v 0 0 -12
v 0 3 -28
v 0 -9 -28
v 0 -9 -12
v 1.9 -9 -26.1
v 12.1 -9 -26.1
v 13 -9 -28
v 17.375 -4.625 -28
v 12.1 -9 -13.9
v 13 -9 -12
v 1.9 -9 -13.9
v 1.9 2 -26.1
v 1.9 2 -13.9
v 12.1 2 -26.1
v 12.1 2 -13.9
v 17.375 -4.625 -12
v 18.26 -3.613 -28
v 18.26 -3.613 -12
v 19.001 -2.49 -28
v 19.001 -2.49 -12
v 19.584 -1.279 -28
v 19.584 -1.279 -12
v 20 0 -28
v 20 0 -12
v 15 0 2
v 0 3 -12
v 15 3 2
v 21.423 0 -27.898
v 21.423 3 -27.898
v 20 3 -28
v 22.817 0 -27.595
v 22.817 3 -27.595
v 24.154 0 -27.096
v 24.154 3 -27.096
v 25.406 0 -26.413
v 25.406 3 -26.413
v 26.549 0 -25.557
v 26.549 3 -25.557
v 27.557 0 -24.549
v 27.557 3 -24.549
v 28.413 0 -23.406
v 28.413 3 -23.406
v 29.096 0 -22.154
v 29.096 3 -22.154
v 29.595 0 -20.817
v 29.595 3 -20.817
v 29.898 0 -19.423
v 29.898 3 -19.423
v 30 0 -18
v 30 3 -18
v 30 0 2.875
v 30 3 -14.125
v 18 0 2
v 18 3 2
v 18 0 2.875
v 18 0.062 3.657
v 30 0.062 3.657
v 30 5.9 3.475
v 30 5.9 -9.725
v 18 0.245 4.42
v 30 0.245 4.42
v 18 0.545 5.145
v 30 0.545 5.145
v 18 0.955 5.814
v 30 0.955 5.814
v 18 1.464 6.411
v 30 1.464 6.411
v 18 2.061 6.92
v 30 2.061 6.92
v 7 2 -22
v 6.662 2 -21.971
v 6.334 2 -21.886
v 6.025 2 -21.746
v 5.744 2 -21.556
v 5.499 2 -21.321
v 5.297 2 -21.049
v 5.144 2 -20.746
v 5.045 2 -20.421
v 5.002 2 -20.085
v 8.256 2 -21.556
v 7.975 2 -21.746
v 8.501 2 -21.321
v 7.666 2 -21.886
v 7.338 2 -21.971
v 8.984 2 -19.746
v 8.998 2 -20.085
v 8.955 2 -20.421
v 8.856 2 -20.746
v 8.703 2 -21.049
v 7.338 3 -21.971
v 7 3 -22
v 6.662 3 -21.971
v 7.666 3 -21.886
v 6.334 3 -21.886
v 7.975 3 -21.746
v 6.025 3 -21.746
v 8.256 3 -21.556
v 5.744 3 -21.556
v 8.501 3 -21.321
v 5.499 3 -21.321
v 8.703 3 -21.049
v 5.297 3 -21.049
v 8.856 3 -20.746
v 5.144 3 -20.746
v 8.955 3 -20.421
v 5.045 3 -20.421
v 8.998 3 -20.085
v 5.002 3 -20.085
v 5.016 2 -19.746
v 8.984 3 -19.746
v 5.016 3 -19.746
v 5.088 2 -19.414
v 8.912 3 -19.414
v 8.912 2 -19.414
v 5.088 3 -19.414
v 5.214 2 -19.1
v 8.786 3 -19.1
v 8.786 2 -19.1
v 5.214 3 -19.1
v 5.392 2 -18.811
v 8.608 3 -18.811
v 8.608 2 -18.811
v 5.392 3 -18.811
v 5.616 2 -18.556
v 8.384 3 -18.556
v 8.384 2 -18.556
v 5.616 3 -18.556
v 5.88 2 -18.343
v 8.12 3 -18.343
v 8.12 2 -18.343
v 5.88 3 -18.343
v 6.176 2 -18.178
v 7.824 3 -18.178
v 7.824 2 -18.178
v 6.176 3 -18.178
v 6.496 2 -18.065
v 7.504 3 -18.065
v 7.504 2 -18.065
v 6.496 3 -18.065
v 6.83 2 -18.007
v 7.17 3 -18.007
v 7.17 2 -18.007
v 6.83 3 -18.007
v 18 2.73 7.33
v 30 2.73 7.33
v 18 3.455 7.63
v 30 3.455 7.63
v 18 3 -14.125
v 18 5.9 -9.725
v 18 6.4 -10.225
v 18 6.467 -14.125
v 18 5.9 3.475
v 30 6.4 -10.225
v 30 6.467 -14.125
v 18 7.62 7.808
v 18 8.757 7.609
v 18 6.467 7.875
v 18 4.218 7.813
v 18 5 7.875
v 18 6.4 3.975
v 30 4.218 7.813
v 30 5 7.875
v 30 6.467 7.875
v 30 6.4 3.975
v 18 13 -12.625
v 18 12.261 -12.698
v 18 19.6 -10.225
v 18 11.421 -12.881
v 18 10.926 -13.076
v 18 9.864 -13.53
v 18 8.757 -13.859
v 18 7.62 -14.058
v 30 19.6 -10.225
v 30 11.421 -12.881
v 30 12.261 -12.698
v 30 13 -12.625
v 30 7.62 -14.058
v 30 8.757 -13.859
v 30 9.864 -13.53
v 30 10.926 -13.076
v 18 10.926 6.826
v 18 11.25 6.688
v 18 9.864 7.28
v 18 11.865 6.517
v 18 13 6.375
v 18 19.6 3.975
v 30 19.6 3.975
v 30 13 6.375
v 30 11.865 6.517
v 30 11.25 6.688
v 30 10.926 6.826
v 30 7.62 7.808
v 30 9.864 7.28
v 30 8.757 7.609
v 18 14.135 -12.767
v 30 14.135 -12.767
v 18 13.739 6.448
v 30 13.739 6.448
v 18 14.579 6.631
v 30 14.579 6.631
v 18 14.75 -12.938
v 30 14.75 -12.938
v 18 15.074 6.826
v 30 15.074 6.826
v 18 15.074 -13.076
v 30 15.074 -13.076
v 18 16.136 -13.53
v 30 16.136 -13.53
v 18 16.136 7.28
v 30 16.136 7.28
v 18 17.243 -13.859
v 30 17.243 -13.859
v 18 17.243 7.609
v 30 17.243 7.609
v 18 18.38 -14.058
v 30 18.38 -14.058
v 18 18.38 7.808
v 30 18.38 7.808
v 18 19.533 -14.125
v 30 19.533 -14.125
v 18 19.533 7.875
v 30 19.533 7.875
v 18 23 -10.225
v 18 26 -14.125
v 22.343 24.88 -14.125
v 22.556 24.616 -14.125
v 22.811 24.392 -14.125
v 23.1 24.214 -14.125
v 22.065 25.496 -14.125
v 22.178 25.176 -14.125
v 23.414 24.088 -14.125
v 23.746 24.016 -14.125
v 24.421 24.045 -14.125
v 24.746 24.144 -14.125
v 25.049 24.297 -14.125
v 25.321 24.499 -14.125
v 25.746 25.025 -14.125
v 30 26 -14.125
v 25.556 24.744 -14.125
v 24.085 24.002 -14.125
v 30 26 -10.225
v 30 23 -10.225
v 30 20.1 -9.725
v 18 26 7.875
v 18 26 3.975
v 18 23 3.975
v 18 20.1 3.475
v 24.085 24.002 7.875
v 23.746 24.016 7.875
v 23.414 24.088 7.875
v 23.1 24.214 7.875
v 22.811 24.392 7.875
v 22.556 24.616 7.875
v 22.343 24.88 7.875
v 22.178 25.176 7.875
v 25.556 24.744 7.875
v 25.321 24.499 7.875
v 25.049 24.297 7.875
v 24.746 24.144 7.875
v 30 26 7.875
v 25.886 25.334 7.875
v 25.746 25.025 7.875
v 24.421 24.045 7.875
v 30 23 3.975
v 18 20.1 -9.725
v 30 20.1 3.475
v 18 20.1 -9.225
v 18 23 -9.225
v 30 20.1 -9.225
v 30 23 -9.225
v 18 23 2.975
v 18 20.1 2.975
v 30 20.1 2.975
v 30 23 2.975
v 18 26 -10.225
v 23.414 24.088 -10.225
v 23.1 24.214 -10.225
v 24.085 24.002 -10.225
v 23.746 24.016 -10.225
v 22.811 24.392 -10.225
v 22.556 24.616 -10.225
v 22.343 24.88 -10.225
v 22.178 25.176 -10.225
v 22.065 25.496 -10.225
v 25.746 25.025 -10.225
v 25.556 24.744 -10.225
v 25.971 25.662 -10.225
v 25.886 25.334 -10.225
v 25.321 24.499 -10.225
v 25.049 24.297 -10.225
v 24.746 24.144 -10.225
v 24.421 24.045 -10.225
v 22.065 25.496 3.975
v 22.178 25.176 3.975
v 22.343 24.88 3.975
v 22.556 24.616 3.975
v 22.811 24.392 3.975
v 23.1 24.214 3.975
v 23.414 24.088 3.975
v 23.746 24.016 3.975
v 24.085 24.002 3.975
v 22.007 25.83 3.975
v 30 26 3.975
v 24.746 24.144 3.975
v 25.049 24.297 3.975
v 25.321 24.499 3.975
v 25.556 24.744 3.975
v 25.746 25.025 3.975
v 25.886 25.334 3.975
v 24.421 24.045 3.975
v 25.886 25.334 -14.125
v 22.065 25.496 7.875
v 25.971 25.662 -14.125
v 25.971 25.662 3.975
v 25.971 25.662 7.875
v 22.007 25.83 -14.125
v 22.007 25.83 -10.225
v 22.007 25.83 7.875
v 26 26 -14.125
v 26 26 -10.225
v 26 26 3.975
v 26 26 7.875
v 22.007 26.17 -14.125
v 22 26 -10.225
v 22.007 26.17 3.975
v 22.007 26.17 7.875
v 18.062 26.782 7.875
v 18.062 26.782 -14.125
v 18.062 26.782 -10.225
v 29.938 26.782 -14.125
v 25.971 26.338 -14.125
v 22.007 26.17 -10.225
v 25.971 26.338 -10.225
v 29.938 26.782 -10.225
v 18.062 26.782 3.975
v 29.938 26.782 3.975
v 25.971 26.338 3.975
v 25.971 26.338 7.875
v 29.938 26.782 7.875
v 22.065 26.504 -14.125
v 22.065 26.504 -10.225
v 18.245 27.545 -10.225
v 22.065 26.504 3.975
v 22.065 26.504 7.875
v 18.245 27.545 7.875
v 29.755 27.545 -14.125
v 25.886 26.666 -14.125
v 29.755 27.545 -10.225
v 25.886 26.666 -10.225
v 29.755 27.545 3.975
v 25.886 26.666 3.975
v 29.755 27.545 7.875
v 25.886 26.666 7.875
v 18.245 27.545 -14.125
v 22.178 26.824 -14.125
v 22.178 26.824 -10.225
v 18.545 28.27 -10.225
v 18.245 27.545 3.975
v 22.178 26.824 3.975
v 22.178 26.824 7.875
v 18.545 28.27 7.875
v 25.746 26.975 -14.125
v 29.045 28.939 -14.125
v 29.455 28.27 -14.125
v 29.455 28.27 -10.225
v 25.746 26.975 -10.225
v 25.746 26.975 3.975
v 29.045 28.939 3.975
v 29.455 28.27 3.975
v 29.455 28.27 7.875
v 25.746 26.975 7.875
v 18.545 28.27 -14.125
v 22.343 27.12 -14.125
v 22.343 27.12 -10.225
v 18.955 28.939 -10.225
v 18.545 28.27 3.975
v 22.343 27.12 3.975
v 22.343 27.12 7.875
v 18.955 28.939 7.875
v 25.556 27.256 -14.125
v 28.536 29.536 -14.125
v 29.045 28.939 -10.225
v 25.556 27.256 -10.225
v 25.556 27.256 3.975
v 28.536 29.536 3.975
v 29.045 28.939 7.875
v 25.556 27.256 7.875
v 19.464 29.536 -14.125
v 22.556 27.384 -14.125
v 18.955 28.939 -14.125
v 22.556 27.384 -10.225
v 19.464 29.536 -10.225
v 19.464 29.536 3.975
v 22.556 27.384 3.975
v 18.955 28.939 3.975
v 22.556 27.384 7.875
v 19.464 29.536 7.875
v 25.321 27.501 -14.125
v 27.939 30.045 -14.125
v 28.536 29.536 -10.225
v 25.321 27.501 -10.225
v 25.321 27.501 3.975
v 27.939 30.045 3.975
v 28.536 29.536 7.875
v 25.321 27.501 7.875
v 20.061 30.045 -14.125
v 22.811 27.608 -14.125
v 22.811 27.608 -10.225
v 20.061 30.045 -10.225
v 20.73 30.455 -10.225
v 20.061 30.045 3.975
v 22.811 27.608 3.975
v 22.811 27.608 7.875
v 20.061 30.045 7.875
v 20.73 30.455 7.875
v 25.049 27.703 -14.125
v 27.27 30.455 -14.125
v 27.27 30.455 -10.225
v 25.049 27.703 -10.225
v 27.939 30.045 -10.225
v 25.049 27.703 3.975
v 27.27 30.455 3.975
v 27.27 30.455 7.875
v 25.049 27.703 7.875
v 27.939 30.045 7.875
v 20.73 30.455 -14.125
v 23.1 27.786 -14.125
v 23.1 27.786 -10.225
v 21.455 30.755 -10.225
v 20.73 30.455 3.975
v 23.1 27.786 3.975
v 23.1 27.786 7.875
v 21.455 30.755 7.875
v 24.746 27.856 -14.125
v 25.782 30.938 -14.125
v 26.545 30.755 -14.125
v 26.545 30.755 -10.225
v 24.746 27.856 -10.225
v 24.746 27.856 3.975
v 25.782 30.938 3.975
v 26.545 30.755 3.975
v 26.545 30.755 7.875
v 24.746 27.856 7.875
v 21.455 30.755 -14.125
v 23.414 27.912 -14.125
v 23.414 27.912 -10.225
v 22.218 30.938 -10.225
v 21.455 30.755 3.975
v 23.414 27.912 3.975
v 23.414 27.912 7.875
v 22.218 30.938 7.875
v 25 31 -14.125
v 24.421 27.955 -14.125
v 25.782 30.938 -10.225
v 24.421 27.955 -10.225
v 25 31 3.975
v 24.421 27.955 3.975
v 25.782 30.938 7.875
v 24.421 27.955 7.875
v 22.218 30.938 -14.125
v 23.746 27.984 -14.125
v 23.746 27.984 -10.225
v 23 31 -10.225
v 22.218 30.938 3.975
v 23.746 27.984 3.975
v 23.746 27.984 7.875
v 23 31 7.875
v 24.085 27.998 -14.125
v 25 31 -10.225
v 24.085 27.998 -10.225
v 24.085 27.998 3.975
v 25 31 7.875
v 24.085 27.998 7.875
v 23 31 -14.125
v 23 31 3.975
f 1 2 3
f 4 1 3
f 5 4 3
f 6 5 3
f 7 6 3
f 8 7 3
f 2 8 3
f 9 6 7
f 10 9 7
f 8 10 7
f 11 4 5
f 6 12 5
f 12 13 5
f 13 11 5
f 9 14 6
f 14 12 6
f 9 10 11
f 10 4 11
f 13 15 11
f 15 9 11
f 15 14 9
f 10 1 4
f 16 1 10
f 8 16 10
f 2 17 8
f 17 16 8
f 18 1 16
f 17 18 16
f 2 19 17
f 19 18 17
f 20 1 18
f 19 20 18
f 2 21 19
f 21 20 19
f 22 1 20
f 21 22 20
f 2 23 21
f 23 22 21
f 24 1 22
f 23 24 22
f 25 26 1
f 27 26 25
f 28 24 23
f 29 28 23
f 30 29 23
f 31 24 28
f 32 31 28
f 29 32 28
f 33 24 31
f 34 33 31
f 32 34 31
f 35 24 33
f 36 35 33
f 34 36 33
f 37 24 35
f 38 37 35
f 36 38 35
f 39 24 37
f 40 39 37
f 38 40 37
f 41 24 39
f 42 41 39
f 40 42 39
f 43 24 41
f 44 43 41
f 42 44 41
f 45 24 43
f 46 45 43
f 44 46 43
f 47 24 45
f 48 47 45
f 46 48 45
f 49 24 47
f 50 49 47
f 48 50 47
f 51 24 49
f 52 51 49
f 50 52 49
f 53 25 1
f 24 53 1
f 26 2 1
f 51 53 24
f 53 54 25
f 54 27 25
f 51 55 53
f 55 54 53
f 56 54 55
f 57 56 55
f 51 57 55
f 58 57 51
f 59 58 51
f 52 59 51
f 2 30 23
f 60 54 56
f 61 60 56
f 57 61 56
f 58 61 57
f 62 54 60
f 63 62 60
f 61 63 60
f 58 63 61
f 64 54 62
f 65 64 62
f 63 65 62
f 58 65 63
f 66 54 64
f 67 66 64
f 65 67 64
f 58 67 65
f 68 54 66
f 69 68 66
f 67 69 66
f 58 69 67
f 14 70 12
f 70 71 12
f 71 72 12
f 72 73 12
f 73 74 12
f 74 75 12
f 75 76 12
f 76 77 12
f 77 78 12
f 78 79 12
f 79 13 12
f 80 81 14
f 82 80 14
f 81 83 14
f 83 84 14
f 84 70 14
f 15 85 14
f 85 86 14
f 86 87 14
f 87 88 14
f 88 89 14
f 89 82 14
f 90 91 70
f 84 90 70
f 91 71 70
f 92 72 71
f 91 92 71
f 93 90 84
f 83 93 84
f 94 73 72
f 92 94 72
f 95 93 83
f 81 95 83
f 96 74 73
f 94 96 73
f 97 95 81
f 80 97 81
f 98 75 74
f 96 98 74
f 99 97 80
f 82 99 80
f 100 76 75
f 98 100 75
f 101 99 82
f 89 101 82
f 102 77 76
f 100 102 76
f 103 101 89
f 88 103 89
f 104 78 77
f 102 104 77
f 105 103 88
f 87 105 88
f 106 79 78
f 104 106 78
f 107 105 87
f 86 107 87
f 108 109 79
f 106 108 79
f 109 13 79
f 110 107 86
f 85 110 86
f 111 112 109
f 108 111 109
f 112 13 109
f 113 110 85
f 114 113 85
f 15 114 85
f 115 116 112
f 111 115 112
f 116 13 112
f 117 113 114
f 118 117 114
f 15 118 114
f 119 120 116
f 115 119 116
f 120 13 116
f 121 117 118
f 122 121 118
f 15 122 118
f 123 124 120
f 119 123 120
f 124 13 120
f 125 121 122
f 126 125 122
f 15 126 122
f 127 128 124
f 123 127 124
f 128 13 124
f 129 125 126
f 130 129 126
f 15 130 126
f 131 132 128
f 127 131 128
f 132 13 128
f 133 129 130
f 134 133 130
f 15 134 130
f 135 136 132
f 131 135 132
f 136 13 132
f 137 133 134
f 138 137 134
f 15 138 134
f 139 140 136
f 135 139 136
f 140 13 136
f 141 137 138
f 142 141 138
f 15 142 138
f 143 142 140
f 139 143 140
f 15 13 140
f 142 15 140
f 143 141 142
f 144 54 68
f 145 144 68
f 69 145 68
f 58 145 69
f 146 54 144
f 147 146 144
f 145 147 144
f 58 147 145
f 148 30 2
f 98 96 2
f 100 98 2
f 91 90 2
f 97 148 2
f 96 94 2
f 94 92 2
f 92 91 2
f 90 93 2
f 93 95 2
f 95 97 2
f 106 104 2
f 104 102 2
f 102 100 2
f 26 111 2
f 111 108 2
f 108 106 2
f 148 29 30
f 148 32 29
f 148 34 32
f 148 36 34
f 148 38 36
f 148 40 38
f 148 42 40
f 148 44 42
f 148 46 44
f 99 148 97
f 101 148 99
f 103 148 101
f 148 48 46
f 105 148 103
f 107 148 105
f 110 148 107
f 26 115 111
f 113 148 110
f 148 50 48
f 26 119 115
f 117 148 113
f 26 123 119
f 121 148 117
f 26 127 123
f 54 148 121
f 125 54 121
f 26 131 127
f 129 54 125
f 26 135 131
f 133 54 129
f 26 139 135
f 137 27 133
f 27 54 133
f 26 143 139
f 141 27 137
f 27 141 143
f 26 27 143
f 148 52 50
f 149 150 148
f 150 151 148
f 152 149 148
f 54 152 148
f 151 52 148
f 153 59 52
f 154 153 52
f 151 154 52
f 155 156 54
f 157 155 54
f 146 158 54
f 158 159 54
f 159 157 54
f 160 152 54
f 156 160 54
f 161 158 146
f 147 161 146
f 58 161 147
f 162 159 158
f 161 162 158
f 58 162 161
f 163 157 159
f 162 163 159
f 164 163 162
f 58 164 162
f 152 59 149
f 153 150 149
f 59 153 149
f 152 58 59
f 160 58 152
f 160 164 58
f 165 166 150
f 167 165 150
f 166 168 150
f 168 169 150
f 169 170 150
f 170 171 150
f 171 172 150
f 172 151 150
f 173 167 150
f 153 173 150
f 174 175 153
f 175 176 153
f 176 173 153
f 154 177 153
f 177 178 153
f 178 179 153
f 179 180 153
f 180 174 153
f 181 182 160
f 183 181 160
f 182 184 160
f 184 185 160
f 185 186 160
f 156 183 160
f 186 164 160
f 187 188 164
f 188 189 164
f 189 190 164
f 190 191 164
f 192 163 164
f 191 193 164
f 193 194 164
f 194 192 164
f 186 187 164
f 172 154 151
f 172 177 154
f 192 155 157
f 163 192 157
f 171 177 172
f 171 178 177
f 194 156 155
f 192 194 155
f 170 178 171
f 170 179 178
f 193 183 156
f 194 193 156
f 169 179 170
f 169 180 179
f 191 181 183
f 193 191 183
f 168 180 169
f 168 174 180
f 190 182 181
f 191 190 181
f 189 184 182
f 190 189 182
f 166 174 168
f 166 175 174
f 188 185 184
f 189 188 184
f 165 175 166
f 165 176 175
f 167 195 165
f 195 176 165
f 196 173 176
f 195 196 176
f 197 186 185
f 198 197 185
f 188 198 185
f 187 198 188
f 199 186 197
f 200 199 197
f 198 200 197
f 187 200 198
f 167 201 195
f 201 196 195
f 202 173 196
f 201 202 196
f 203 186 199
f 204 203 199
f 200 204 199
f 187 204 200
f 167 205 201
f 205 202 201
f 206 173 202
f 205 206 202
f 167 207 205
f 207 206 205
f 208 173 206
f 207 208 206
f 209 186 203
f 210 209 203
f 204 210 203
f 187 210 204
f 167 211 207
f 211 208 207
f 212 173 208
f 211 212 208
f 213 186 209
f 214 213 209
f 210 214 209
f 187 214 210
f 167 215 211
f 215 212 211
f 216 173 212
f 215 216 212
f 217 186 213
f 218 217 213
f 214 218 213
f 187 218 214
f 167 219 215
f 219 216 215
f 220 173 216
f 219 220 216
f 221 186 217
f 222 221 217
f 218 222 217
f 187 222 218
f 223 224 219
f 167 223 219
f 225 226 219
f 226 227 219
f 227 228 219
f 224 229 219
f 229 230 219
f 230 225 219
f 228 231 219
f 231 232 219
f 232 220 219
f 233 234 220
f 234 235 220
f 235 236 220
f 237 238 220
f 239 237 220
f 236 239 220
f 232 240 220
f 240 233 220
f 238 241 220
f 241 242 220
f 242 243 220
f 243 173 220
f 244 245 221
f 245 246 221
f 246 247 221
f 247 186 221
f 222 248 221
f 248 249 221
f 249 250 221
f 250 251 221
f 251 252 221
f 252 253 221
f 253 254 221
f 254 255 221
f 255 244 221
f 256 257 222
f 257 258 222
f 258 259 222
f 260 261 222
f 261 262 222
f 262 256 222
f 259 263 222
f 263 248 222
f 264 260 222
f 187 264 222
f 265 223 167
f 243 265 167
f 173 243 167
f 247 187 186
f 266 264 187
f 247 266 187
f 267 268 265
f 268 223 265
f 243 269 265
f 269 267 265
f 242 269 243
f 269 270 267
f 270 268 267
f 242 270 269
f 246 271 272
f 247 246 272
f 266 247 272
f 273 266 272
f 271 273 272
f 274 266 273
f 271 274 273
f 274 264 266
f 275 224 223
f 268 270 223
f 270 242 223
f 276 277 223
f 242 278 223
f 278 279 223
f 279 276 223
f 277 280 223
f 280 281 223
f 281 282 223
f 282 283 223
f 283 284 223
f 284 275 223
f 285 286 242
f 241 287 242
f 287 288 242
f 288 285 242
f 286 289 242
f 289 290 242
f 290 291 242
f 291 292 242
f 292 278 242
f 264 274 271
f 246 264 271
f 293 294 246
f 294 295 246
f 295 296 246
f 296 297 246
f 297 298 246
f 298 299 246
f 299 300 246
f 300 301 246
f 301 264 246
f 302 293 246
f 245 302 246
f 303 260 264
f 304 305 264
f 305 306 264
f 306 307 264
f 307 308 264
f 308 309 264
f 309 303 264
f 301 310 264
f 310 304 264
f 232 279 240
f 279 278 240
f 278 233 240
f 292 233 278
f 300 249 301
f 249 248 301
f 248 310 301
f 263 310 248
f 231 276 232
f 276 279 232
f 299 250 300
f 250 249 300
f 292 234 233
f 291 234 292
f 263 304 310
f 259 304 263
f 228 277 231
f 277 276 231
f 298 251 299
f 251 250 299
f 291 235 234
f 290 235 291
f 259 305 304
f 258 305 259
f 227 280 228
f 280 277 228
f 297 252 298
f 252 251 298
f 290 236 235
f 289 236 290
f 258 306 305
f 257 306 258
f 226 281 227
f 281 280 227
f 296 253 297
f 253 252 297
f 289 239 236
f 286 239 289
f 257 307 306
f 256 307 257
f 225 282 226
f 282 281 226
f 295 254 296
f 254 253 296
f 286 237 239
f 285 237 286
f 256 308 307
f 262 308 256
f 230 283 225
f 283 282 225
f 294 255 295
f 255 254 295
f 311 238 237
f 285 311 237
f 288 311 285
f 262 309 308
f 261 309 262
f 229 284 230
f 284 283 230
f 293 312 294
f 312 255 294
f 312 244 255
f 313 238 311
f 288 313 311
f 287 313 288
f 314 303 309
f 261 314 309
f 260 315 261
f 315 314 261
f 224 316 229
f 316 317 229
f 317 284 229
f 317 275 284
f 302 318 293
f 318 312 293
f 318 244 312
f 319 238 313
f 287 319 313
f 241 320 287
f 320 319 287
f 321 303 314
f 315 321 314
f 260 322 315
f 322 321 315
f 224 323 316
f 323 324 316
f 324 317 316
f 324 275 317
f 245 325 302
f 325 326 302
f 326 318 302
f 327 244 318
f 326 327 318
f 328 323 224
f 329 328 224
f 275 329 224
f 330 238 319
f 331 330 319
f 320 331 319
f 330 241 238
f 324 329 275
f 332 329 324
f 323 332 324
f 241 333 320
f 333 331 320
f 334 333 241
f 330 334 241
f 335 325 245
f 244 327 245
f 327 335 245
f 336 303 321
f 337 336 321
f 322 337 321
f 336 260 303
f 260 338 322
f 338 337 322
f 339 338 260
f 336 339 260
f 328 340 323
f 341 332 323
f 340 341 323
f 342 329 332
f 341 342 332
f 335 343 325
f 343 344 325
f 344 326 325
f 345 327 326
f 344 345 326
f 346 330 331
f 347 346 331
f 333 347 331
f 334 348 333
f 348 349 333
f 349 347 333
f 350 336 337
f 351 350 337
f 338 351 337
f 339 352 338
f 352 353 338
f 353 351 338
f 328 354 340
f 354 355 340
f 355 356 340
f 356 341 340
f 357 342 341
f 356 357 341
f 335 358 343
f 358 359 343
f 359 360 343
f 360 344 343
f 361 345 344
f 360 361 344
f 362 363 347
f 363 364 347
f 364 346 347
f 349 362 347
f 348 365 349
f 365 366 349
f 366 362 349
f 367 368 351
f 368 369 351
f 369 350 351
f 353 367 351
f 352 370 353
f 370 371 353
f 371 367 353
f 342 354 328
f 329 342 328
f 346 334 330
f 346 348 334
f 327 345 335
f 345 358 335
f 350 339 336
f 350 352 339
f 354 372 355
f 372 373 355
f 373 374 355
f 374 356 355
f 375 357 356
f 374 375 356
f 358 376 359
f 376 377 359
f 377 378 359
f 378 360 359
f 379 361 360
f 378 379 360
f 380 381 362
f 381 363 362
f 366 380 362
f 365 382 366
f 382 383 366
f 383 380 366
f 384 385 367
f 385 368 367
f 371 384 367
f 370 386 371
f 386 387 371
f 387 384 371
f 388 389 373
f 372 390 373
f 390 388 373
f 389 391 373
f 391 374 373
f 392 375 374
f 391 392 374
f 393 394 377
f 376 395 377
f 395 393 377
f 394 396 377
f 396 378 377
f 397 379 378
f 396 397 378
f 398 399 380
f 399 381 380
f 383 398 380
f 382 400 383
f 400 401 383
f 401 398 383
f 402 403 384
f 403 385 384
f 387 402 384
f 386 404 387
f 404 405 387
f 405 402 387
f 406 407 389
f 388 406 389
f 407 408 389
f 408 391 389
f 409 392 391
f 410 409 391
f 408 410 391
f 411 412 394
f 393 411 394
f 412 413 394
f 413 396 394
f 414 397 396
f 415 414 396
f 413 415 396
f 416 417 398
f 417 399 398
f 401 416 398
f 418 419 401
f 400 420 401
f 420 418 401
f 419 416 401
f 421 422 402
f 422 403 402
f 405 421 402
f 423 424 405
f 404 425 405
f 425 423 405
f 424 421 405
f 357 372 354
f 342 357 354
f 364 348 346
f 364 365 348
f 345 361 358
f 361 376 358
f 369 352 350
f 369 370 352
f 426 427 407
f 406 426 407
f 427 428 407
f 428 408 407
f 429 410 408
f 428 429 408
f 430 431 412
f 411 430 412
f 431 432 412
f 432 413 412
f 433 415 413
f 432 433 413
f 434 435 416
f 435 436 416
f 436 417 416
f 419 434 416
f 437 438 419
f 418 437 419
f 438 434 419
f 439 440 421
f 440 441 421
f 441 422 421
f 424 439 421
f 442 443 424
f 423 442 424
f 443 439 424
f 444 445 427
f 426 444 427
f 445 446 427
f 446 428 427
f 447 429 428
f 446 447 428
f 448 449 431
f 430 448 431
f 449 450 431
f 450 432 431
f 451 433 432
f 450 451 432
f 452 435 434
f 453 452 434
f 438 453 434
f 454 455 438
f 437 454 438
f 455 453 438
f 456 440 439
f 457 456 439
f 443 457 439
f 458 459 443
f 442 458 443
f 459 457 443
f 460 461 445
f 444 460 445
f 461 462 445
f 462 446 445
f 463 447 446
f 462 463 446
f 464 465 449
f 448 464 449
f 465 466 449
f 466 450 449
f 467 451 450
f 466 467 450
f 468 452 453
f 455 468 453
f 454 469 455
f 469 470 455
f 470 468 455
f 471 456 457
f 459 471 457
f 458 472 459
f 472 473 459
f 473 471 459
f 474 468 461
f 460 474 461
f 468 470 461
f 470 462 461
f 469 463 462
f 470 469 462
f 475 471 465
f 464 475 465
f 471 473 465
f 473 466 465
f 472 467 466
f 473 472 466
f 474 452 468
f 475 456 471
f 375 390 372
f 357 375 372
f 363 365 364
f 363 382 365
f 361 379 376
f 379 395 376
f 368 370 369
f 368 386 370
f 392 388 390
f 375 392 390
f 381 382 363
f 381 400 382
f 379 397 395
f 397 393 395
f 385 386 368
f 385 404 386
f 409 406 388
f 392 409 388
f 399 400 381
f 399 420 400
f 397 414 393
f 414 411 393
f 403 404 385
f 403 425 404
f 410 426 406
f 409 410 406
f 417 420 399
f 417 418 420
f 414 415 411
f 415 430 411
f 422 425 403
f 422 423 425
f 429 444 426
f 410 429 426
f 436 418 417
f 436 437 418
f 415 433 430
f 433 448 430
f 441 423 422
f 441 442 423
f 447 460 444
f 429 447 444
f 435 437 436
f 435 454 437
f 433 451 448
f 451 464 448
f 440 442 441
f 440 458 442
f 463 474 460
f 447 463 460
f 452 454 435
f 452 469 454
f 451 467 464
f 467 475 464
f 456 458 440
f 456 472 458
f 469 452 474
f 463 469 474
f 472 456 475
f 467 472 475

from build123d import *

# Parameters (mm, degrees)
ESQUISSE1_W                   = 30
ESQUISSE1_H                   = 40
BOSS_EXTRU_1_DEPTH            = 3
ESQUISSE8_W                   = 17
ESQUISSE8_H                   = 3.5
BOSS_EXTRU_2_DEPTH            = 20
ESQUISSE11_W                  = 3.5
ESQUISSE11_H                  = 20
ENL_V_MAT_EXTRU_9_DEPTH       = 5
ESQUISSE19_W                  = 12
ESQUISSE19_H                  = 20
BOSS_EXTRU_6_DEPTH            = 16.5
ESQUISSE20_W                  = 14.2
ESQUISSE20_H                  = 14.2
ENL_V_MAT_EXTRU_11_DEPTH      = 50.527769988
ESQUISSE29_W                  = 12
ESQUISSE29_H                  = 3
BOSS_EXTRU_9_DEPTH            = 17
ESQUISSE30_W                  = 12
ESQUISSE30_H                  = 23
BOSS_EXTRU_10_DEPTH           = 1
ESQUISSE31_W                  = 12
ESQUISSE31_H                  = 20
BOSS_EXTRU_11_DEPTH           = 1
ESQUISSE32_W                  = 12.2
ESQUISSE32_H                  = 2.9
ENL_V_MAT_EXTRU_12_DEPTH      = 50.527769988
ESQUISSE33_W                  = 12
ESQUISSE33_H                  = 3.9
BOSS_EXTRU_12_DEPTH           = 8
CONG_6_R                      = 5
ENL_V_MAT_EXTRU_14_DEPTH      = 53.417083332
ENL_V_MAT_EXTRU_14_DEPTH_BACK = 53.417083332
ESQUISSE36_R                  = 2
CHANFREIN1_SIZE               = 0.5
CONG_7_R                      = 5
ENL_V_MAT_EXTRU_15_DEPTH      = 54.712196008
CONG_8_R                      = 10
CONG_9_R                      = 10
ESQUISSE39_W                  = 30
ESQUISSE39_H                  = 3
BOSS_EXTRU_13_DEPTH           = 2
ESQUISSE40_W                  = 18
ESQUISSE40_H                  = 3
BOSS_EXTRU_14_DEPTH           = 2
ESQUISSE38_R                  = 2
ENL_V_MAT_EXTRU_16_DEPTH      = 61.207973065
ESQUISSE41_W                  = 14
ESQUISSE41_H                  = 16
ESQUISSE41_W_2                = 10
ESQUISSE41_H_2                = 12
BOSS_EXTRU_15_DEPTH           = 9
ESQUISSE42_W                  = 10
ESQUISSE42_H                  = 12
ENL_V_MAT_EXTRU_17_DEPTH      = 2
ESQUISSE43_W                  = 30
ESQUISSE43_H                  = 14
ENL_V_MAT_EXTRU_19_DEPTH      = 3
CONG_10_R                     = 10
ESQUISSE44_W                  = 6
ESQUISSE44_H                  = 16
BOSS_EXTRU_16_DEPTH           = 9
CHANFREIN2_SIZE               = 7
CONG_11_R                     = 10
ESQUISSE46_W                  = 10.2
ESQUISSE46_H                  = 12.2
ENL_V_MAT_EXTRU_20_DEPTH      = 11


with BuildPart() as part:
    # Esquisse1 → Boss.-Extru.1 (new body)
    with BuildSketch(Plane(origin=(0, 0, 0), x_dir=(1, 0, 0), z_dir=(0, 1, 0))):
        with Locations((15, 20)):
            Rectangle(ESQUISSE1_W, ESQUISSE1_H)
    extrude(amount=BOSS_EXTRU_1_DEPTH)

    # Esquisse8 → Boss.-Extru.2 (add)
    with BuildSketch(Plane(origin=(0, 3, 0), x_dir=(1, 0, 0), z_dir=(0, 1, 0))):
        with Locations((21.5, 11.375)):
            Rectangle(ESQUISSE8_W, ESQUISSE8_H)
    extrude(amount=BOSS_EXTRU_2_DEPTH)

    # Esquisse11 → Enlèv. mat.-Extru.9 (cut)
    with BuildSketch(Plane.ZY.offset(-13)):
        with Locations((-11.375, 13)):
            Rectangle(ESQUISSE11_W, ESQUISSE11_H)
    extrude(amount=-ENL_V_MAT_EXTRU_9_DEPTH, mode=Mode.SUBTRACT)

    # Esquisse19 → Boss.-Extru.6 (add)
    with BuildSketch(Plane.XY.offset(-9.625)):
        with Locations((24, 13)):
            Rectangle(ESQUISSE19_W, ESQUISSE19_H)
    extrude(amount=BOSS_EXTRU_6_DEPTH)

    # Esquisse20 → Enlèv. mat.-Extru.11 (cut, through all)
    with BuildSketch(Plane.ZY.offset(-18)):
        with Locations((-3.125, 13)):
            Rectangle(ESQUISSE20_W, ESQUISSE20_H)
    extrude(amount=-ENL_V_MAT_EXTRU_11_DEPTH, mode=Mode.SUBTRACT)

    # Esquisse29 → Boss.-Extru.9 (add)
    with BuildSketch(Plane.XY.offset(6.875)):
        with Locations((24, 1.5)):
            Rectangle(ESQUISSE29_W, ESQUISSE29_H)
    extrude(amount=-BOSS_EXTRU_9_DEPTH)

    # Esquisse30 → Boss.-Extru.10 (add)
    with BuildSketch(Plane.XY.offset(6.875)):
        with Locations((24, 11.5)):
            Rectangle(ESQUISSE30_W, ESQUISSE30_H)
    extrude(amount=BOSS_EXTRU_10_DEPTH)

    # Esquisse31 → Boss.-Extru.11 (add)
    with BuildSketch(Plane(origin=(0, 0, -13.125), x_dir=(-1, 0, 0), z_dir=(0, 0, -1))):
        with Locations((-24, 13)):
            Rectangle(ESQUISSE31_W, ESQUISSE31_H)
    extrude(amount=BOSS_EXTRU_11_DEPTH)

    # Esquisse32 → Enlèv. mat.-Extru.12 (cut, through all)
    with BuildSketch(Plane.ZY.offset(-18)):
        with Locations((-3.125, 21.55)):
            Rectangle(ESQUISSE32_W, ESQUISSE32_H)
    extrude(amount=-ENL_V_MAT_EXTRU_12_DEPTH, mode=Mode.SUBTRACT)

    # Esquisse33 → Boss.-Extru.12 (add)
    with BuildSketch(Plane(origin=(0, 23, 0), x_dir=(1, 0, 0), z_dir=(0, 1, 0))):
        with Locations((24, 12.175)):
            Rectangle(ESQUISSE33_W, ESQUISSE33_H)
        with Locations((24, -5.925)):
            Rectangle(ESQUISSE33_W, ESQUISSE33_H)
    extrude(amount=BOSS_EXTRU_12_DEPTH)

    # Congé6
    cong_6_edges = [part.edges().sort_by_distance(p)[0] for p in [
        (18, 31, -12.175),
        (30, 31, -12.175),
        (18, 31, 5.925),
        (30, 31, 5.925),
    ]]
    fillet(cong_6_edges, radius=CONG_6_R)

    # Esquisse36 → Enlèv. mat.-Extru.14 (cut, two sides: drawn at the far end of the back side and taken through both)
    with BuildSketch(Plane.XY.offset(-10.225).offset(-ENL_V_MAT_EXTRU_14_DEPTH_BACK)):
        with Locations((24, 26)):
            Circle(ESQUISSE36_R)
    extrude(amount=ENL_V_MAT_EXTRU_14_DEPTH + ENL_V_MAT_EXTRU_14_DEPTH_BACK, mode=Mode.SUBTRACT)

    # Chanfrein1
    chanfrein1_edges = [part.edges().sort_by_distance(p)[0] for p in [
        (24, 5.9, -10.225),
        (24, 20.1, -10.225),
        (24, 20.1, 3.975),
        (24, 5.9, 3.975),
    ]]
    chamfer(chanfrein1_edges, length=CHANFREIN1_SIZE)

    # Congé7
    cong_7_edges = [part.edges().sort_by_distance(p)[0] for p in [
        (24, 0, 7.875),
    ]]
    fillet(cong_7_edges, radius=CONG_7_R)

    # Esquisse37 → Enlèv. mat.-Extru.15 (cut, through all)
    with BuildSketch(Plane.ZY.offset(-18)):
        with BuildLine():
            Line((-14.125, 16), (-14.125, 10))
            add(Edge.make_bspline(
                [(-14.125, 10), (-12.780635922, 10.344634173), (-12.625, 13)],
                knots=[0, 0, 0, 1, 1, 1], degree=2))
            add(Edge.make_bspline(
                [(-14.125, 16), (-12.780635922, 15.655365827), (-12.625, 13)],
                knots=[0, 0, 0, 1, 1, 1], degree=2))
        make_face()
        with BuildLine():
            Line((7.875, 16), (7.875, 10))
            add(Edge.make_bspline(
                [(7.875, 10), (6.530635922, 10.344634173), (6.375, 13)],
                knots=[0, 0, 0, 1, 1, 1], degree=2))
            add(Edge.make_bspline(
                [(7.875, 16), (6.530635922, 15.655365827), (6.375, 13)],
                knots=[0, 0, 0, 1, 1, 1], degree=2))
        make_face()
    extrude(amount=-ENL_V_MAT_EXTRU_15_DEPTH, mode=Mode.SUBTRACT)

    # Congé8
    cong_8_edges = [part.edges().sort_by_distance(p)[0] for p in [
        (24, 10, 7.875),
        (24, 16, 7.875),
    ]]
    fillet(cong_8_edges, radius=CONG_8_R)

    # Congé9
    cong_9_edges = [part.edges().sort_by_distance(p)[0] for p in [
        (24, 16, -14.125),
        (24, 10, -14.125),
    ]]
    fillet(cong_9_edges, radius=CONG_9_R)

    # Esquisse39 → Boss.-Extru.13 (add)
    with BuildSketch(Plane(origin=(0, 0, -40), x_dir=(-1, 0, 0), z_dir=(0, 0, -1))):
        with Locations((-15, 1.5)):
            Rectangle(ESQUISSE39_W, ESQUISSE39_H)
    extrude(amount=BOSS_EXTRU_13_DEPTH)

    # Esquisse40 → Boss.-Extru.14 (add)
    with BuildSketch(Plane.XY):
        with Locations((9, 1.5)):
            Rectangle(ESQUISSE40_W, ESQUISSE40_H)
    extrude(amount=BOSS_EXTRU_14_DEPTH)

    # Esquisse38 → Enlèv. mat.-Extru.16 (cut, through all)
    with BuildSketch(Plane.XZ):
        with Locations(Location((7, -20, 0), (0, 0, 270))):
            Circle(ESQUISSE38_R)
    extrude(amount=-ENL_V_MAT_EXTRU_16_DEPTH, mode=Mode.SUBTRACT)

    # Esquisse41 → Boss.-Extru.15 (add)
    with BuildSketch(Plane.XZ):
        with Locations((7, -20)):
            Rectangle(ESQUISSE41_W, ESQUISSE41_H)
        with Locations((7, -20)):
            Rectangle(ESQUISSE41_W_2, ESQUISSE41_H_2, mode=Mode.SUBTRACT)
    extrude(amount=BOSS_EXTRU_15_DEPTH)

    # Esquisse42 → Enlèv. mat.-Extru.17 (cut)
    with BuildSketch(Plane.XZ):
        with Locations((7, -20)):
            Rectangle(ESQUISSE42_W, ESQUISSE42_H)
    extrude(amount=-ENL_V_MAT_EXTRU_17_DEPTH, mode=Mode.SUBTRACT)

    # Esquisse43 → Enlèv. mat.-Extru.19 (cut)
    with BuildSketch(Plane.XZ):
        with Locations((15, -35)):
            Rectangle(ESQUISSE43_W, ESQUISSE43_H)
        Polygon((0, -12), (0, 2), (15, 2), align=None)
    extrude(amount=-ENL_V_MAT_EXTRU_19_DEPTH, mode=Mode.SUBTRACT)

    # Congé10
    cong_10_edges = [part.edges().sort_by_distance(p)[0] for p in [
        (30, 1.5, -28),
    ]]
    fillet(cong_10_edges, radius=CONG_10_R)

    # Esquisse44 → Boss.-Extru.16 (add)
    with BuildSketch(Plane.XZ):
        with Locations((17, -20)):
            Rectangle(ESQUISSE44_W, ESQUISSE44_H)
    extrude(amount=BOSS_EXTRU_16_DEPTH)

    # Chanfrein2
    chanfrein2_edges = [part.edges().sort_by_distance(p)[0] for p in [
        (20, -9, -20),
    ]]
    chamfer(chanfrein2_edges, length=CHANFREIN2_SIZE)

    # Congé11
    # the kernel refuses this fillet: 10 mm, written as the material it takes off along each edge
    with BuildSketch(Plane(origin=(20, -2, -2.718486848), x_dir=(-0.7071067811865474, -0.7071067811865477, 0), z_dir=(0, 0, -1))) as cong_11_piece_1:
        with BuildLine():
            CenterArc((3.712605261, 10), CONG_11_R, 239.157365729, 30.842634271)
            Line((-1.414213562, 1.414213562), (-1.516749939, 1.242497834))
            ThreePointArc((-1.516749939, 1.242497834), (-0.848528137, 0.565685425), (-0.141421356, -0.141421356))
            Line((-0.141421356, -0.141421356), (0, -0.2))
            Line((0, -0.2), (3.712605261, -0.2))
            Line((3.712605261, -0.2), (3.712605261, 0))
        make_face()
    extrude(amount=34.563026305, mode=Mode.SUBTRACT)

    # Esquisse46 → Enlèv. mat.-Extru.20 (cut)
    with BuildSketch(Plane.XZ.offset(9)):
        with Locations((7, -20)):
            Rectangle(ESQUISSE46_W, ESQUISSE46_H)
    extrude(amount=-ENL_V_MAT_EXTRU_20_DEPTH, mode=Mode.SUBTRACT)


solid = part.part
